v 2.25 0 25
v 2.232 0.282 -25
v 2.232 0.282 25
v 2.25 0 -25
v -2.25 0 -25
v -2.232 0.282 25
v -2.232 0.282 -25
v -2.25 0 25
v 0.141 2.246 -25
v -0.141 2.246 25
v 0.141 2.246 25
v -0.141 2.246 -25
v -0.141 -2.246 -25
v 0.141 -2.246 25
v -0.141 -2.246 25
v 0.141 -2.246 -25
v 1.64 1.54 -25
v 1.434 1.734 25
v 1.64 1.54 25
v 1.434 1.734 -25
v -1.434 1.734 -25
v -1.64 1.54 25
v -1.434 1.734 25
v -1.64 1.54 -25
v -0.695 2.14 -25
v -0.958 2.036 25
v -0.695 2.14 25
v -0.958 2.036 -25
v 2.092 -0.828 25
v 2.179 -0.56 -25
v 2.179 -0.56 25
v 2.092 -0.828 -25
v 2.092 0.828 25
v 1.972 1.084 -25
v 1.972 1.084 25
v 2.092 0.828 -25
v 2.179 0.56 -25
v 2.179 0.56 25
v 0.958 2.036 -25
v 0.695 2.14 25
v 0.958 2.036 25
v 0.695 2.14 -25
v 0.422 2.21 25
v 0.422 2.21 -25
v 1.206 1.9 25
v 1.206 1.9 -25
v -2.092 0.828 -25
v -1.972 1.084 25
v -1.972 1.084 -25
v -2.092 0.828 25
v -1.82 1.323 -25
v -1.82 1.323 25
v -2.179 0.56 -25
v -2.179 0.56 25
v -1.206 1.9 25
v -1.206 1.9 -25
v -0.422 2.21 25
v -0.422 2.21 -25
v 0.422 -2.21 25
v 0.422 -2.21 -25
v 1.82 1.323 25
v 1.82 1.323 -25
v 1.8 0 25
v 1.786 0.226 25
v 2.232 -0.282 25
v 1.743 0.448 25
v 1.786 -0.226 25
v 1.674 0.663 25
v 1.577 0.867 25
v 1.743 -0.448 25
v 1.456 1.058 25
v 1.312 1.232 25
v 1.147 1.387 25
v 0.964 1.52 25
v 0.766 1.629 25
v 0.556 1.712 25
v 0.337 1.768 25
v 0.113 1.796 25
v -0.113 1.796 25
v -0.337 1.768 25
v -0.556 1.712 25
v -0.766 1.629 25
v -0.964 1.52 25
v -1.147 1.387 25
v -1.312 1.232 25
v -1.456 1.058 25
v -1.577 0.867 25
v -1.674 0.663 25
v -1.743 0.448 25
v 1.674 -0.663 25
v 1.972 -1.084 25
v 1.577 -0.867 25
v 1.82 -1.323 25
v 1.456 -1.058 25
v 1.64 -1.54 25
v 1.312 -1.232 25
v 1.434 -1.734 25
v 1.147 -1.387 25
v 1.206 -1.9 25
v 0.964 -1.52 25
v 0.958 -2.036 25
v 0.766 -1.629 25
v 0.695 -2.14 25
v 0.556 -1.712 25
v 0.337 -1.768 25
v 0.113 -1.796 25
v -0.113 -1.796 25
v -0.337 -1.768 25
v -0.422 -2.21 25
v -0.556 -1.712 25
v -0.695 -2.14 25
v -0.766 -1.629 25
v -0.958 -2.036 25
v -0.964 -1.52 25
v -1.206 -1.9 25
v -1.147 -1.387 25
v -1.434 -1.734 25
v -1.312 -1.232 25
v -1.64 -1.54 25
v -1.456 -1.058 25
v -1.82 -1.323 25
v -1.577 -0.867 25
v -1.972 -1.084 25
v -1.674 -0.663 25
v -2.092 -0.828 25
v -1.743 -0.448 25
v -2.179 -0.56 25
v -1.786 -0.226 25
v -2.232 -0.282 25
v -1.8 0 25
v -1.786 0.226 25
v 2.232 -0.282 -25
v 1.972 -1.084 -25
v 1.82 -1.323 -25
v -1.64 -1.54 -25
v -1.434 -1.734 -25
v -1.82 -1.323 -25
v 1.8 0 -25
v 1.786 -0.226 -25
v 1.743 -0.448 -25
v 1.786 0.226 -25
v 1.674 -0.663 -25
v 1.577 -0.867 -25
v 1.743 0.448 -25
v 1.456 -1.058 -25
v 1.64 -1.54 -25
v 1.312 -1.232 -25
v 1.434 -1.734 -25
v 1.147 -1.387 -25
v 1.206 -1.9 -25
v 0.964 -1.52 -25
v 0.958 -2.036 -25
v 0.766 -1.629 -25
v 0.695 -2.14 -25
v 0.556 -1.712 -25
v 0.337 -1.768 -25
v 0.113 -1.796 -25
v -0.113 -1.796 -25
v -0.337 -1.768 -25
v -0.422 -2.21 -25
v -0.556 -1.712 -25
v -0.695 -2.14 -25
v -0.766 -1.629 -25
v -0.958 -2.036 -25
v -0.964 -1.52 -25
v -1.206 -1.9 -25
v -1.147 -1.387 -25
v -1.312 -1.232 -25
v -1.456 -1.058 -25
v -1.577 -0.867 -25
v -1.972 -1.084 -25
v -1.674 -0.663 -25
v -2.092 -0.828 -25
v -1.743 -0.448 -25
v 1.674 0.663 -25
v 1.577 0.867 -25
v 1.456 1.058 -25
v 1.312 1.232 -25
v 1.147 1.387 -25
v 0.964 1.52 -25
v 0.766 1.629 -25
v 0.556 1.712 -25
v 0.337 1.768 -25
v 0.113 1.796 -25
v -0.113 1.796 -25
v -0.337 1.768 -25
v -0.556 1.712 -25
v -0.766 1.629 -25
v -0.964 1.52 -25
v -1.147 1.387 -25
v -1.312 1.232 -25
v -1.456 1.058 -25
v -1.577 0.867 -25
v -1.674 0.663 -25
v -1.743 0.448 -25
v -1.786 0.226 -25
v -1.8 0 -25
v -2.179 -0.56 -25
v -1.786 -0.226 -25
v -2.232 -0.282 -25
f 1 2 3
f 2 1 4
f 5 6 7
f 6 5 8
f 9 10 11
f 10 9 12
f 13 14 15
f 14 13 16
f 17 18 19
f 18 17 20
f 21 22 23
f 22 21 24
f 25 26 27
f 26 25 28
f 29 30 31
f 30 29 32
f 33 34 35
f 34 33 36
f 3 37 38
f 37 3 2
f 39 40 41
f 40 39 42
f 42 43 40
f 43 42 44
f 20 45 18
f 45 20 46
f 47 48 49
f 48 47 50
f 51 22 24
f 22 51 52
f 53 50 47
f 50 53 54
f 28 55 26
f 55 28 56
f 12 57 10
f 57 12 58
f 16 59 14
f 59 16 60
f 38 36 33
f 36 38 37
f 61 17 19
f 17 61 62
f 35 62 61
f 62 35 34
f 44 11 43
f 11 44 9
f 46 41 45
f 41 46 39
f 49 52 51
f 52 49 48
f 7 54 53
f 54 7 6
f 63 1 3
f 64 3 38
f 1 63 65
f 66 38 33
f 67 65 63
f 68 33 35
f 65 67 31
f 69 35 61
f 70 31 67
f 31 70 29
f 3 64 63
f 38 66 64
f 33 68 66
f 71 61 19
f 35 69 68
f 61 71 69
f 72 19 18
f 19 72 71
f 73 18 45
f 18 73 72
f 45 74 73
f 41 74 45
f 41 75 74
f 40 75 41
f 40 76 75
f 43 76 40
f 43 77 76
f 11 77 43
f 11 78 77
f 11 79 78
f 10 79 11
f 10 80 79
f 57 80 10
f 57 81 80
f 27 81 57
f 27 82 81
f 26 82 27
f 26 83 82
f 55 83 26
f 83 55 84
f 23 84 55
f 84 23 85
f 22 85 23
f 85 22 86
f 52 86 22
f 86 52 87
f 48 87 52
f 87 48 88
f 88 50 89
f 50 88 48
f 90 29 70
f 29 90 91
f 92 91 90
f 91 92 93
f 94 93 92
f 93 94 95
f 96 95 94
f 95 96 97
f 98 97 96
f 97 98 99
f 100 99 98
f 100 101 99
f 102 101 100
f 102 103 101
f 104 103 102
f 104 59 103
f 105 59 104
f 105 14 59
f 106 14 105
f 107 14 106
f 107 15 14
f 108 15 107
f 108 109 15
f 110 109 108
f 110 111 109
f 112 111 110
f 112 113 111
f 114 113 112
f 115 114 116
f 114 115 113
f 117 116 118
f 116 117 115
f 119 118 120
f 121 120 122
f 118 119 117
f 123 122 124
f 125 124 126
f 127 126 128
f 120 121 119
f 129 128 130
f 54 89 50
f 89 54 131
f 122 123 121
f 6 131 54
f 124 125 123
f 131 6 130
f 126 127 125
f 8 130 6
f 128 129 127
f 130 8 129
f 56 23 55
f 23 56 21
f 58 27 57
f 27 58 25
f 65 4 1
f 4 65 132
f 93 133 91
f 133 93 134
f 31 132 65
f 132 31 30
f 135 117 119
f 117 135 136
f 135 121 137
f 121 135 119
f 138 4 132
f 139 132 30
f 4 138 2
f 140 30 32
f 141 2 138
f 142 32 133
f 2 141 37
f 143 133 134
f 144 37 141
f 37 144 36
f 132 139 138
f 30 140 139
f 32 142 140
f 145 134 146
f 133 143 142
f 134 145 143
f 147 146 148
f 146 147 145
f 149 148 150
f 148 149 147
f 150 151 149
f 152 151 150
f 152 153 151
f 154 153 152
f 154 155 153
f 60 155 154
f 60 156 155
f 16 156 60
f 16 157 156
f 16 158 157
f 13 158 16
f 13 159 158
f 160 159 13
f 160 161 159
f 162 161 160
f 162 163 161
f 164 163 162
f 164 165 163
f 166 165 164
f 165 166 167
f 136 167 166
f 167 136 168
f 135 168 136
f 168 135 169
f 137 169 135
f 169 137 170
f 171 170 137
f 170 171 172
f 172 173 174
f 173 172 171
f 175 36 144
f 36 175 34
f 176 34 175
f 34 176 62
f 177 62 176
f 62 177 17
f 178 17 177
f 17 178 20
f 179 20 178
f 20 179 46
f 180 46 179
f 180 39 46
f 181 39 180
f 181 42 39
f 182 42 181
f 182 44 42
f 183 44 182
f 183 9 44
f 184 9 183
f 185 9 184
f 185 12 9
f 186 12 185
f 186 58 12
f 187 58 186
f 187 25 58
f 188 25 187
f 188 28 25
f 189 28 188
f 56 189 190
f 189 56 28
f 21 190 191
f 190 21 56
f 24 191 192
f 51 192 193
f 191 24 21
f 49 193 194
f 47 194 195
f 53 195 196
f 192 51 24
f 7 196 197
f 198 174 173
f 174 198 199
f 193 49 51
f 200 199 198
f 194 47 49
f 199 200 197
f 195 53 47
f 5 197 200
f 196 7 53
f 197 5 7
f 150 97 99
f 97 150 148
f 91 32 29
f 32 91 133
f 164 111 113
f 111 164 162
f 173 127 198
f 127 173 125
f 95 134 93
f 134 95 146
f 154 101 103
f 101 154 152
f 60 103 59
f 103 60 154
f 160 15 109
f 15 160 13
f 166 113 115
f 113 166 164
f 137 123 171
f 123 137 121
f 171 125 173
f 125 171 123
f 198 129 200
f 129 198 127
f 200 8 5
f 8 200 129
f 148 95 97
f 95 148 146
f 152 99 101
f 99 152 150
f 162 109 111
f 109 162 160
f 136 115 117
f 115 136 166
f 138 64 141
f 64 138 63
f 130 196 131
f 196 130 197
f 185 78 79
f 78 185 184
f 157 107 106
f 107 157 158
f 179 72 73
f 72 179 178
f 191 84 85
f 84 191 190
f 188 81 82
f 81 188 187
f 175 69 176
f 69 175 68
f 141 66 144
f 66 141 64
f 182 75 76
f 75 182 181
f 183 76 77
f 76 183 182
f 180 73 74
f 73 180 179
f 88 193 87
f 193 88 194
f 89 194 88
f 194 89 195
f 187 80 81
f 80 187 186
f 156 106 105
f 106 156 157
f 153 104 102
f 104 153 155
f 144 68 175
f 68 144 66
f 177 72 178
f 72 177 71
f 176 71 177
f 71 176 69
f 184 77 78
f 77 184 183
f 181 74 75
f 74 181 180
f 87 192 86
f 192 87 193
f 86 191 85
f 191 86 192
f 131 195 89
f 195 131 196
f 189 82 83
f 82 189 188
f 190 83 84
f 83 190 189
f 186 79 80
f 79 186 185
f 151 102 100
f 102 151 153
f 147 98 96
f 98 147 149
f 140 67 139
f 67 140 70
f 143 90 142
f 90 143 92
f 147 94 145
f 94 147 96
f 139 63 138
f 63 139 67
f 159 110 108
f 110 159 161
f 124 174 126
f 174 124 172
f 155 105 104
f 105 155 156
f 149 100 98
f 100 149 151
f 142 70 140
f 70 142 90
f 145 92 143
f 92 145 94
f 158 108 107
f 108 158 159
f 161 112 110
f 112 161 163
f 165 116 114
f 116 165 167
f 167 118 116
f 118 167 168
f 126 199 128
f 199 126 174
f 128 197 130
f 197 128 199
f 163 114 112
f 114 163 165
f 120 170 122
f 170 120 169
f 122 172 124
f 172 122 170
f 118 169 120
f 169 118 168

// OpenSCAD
$fn = 50;


difference() {
	union() {
		translate(v = [0, 0, -25.0000000000]) {
			cylinder(h = 50, r = 2.2500000000);
		}
	}
	union() {
		translate(v = [0, 0, -100.0000000000]) {
			cylinder(h = 200, r = 1.8000000000);
		}
	}
}
